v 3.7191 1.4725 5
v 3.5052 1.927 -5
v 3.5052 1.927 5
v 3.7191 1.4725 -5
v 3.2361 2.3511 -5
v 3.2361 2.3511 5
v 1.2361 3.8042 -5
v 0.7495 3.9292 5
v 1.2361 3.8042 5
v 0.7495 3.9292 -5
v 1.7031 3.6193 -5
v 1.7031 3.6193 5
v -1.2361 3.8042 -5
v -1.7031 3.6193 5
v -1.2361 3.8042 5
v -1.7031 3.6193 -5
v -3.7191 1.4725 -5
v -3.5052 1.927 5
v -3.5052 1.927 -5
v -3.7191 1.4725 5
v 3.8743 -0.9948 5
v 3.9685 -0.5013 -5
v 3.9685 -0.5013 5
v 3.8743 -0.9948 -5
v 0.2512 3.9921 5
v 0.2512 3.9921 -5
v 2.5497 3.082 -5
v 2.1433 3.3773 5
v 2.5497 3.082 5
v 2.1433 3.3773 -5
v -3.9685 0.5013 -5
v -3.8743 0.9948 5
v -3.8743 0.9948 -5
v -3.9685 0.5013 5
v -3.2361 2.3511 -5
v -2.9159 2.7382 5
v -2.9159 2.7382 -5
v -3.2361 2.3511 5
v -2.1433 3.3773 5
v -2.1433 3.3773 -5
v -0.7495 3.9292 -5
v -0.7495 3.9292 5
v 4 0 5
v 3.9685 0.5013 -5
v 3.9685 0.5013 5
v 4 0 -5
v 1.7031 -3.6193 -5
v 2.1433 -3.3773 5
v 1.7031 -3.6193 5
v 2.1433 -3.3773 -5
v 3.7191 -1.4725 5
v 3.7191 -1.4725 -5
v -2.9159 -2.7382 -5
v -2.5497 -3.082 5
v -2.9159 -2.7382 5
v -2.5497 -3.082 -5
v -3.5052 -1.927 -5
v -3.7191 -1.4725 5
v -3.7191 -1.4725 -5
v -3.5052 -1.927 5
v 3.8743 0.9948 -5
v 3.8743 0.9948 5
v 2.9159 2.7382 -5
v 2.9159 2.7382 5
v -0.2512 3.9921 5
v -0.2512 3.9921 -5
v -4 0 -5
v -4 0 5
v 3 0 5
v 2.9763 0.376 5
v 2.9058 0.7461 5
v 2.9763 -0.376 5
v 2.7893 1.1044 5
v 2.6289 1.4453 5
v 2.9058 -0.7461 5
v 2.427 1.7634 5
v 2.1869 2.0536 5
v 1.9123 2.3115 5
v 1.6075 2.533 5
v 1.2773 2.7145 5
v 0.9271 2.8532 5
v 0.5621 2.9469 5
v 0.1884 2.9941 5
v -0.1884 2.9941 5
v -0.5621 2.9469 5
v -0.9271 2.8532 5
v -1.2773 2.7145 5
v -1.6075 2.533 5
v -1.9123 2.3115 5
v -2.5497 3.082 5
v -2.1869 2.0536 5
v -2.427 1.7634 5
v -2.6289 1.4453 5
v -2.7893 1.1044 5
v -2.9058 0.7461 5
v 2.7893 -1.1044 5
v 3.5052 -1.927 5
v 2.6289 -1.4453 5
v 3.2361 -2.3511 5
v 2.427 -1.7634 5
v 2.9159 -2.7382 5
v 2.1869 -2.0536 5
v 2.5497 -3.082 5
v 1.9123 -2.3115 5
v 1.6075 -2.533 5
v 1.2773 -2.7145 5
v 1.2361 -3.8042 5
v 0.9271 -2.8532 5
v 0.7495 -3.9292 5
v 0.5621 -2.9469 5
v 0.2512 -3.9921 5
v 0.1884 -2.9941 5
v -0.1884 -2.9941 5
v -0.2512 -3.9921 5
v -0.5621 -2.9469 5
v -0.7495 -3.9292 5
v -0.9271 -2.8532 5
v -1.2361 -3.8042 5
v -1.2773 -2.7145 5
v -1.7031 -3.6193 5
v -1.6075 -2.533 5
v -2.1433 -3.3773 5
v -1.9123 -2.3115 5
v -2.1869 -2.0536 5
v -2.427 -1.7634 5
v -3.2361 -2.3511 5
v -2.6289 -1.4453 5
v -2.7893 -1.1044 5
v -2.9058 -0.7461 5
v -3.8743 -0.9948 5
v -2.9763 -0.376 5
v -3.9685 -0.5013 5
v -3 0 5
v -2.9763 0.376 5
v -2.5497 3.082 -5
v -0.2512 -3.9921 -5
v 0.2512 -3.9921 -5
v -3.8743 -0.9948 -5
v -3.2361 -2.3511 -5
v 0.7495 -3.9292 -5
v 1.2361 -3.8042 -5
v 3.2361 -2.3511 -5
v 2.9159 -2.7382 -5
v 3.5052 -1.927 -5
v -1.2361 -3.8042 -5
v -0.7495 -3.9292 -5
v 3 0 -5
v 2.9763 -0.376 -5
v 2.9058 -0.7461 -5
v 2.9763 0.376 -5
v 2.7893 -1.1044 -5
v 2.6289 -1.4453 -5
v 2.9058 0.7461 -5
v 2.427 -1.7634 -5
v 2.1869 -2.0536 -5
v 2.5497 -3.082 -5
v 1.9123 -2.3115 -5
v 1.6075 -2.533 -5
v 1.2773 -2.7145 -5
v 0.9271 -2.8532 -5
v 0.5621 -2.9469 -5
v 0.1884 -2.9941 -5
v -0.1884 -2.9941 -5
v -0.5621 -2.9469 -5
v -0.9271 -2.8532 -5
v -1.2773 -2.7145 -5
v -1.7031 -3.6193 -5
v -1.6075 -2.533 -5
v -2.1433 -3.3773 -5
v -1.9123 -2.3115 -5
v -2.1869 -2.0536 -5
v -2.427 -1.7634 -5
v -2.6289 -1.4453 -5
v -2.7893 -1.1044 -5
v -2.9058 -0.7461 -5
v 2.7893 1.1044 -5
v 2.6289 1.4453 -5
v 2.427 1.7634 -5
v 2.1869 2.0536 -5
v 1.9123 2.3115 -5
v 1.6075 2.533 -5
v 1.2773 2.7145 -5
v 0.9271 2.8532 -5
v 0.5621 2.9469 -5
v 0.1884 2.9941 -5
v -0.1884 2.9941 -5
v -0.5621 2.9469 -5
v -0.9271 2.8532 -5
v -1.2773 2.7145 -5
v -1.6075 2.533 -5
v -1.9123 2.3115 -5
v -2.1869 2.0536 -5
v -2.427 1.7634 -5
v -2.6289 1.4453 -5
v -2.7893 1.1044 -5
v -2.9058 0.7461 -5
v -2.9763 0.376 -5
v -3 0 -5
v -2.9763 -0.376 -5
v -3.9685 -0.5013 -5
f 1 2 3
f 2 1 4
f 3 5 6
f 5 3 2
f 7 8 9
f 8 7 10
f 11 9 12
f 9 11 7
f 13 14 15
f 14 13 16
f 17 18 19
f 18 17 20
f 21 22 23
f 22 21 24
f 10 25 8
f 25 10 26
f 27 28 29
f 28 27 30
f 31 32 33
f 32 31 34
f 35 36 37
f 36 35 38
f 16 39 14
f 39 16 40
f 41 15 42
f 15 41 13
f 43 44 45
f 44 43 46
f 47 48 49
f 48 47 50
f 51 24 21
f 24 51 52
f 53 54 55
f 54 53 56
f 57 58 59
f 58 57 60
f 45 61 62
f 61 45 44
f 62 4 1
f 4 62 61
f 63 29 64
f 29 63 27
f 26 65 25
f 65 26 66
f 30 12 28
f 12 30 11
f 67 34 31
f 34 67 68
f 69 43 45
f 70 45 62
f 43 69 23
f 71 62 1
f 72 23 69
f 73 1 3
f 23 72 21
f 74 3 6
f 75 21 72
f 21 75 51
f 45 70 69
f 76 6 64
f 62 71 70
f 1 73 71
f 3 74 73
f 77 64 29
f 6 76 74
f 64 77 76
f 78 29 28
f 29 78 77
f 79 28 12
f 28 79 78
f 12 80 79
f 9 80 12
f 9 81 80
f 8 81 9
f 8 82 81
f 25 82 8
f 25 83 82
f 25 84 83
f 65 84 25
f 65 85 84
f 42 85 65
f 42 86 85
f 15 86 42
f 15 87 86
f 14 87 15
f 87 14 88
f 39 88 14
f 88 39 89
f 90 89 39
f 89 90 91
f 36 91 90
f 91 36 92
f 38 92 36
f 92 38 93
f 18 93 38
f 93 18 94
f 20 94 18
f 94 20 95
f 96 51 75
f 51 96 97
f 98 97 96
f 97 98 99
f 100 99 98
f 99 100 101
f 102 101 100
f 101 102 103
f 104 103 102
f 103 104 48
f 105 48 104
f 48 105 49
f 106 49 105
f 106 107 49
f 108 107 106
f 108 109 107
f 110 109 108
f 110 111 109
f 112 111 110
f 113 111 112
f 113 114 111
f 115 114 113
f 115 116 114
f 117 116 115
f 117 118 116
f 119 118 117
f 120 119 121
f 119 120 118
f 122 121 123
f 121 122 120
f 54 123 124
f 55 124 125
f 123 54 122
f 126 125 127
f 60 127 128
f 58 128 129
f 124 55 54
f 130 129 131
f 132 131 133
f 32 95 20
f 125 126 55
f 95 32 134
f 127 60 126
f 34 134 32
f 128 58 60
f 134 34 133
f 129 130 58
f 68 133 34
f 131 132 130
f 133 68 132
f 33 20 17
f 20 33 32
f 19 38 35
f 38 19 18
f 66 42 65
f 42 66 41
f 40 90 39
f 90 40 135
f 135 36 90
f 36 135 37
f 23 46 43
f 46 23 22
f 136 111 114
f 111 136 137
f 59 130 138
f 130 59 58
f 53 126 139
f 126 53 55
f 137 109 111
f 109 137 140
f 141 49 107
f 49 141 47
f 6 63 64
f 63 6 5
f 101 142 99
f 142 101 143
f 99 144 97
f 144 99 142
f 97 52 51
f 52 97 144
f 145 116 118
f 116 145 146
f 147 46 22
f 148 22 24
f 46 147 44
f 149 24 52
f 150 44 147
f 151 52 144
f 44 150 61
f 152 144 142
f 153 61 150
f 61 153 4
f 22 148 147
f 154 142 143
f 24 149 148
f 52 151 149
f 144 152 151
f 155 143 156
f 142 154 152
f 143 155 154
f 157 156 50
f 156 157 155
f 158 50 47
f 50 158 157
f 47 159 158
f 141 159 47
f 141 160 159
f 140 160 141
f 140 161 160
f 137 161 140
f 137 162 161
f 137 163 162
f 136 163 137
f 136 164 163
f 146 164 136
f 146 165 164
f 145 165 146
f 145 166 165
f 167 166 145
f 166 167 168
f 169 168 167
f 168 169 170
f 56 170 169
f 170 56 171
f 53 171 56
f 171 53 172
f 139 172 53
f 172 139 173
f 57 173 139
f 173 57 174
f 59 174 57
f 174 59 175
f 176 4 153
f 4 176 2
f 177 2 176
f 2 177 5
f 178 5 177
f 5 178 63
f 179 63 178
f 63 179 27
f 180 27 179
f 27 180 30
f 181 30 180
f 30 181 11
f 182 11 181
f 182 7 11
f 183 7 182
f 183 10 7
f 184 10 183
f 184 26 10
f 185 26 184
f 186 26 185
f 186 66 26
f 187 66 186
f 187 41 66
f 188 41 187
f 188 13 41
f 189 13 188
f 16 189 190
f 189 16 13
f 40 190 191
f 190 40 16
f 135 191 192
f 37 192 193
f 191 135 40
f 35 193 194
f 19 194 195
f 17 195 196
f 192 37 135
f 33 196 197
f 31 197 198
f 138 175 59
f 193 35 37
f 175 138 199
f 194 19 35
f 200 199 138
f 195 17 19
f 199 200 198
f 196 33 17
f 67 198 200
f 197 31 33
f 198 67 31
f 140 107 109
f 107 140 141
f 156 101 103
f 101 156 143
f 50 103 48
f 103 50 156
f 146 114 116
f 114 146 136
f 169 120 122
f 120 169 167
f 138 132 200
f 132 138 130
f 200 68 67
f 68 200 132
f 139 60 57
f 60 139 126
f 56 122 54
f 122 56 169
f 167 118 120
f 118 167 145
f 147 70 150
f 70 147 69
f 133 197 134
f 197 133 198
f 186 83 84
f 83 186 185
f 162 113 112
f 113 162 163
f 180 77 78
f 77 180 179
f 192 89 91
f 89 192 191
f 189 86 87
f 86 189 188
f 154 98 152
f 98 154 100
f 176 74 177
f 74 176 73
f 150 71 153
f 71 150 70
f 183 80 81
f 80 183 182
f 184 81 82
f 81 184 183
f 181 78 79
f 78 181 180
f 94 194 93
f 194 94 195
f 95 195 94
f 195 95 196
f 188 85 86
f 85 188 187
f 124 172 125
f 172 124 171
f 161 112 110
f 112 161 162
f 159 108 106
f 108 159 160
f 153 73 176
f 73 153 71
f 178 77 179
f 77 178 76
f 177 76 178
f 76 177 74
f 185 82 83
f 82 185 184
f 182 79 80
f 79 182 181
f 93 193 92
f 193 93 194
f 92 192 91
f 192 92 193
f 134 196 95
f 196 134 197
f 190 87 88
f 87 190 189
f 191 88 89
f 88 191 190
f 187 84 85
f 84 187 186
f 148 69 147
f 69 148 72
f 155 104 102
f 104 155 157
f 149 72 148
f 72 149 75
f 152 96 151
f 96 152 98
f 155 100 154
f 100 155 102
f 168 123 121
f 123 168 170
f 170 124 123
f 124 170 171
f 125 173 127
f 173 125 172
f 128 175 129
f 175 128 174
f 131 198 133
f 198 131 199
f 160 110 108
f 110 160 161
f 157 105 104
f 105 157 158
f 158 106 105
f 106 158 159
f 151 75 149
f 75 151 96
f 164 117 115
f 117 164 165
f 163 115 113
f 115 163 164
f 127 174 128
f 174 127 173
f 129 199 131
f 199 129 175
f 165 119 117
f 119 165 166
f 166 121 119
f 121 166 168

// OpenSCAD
$fn = 50;


difference() {
	union() {
		translate(v = [0, 0, -5.0000000000]) {
			cylinder(h = 10, r = 4.0000000000);
		}
	}
	union() {
		translate(v = [0, 0, -100.0000000000]) {
			cylinder(h = 200, r = 3);
		}
	}
}
